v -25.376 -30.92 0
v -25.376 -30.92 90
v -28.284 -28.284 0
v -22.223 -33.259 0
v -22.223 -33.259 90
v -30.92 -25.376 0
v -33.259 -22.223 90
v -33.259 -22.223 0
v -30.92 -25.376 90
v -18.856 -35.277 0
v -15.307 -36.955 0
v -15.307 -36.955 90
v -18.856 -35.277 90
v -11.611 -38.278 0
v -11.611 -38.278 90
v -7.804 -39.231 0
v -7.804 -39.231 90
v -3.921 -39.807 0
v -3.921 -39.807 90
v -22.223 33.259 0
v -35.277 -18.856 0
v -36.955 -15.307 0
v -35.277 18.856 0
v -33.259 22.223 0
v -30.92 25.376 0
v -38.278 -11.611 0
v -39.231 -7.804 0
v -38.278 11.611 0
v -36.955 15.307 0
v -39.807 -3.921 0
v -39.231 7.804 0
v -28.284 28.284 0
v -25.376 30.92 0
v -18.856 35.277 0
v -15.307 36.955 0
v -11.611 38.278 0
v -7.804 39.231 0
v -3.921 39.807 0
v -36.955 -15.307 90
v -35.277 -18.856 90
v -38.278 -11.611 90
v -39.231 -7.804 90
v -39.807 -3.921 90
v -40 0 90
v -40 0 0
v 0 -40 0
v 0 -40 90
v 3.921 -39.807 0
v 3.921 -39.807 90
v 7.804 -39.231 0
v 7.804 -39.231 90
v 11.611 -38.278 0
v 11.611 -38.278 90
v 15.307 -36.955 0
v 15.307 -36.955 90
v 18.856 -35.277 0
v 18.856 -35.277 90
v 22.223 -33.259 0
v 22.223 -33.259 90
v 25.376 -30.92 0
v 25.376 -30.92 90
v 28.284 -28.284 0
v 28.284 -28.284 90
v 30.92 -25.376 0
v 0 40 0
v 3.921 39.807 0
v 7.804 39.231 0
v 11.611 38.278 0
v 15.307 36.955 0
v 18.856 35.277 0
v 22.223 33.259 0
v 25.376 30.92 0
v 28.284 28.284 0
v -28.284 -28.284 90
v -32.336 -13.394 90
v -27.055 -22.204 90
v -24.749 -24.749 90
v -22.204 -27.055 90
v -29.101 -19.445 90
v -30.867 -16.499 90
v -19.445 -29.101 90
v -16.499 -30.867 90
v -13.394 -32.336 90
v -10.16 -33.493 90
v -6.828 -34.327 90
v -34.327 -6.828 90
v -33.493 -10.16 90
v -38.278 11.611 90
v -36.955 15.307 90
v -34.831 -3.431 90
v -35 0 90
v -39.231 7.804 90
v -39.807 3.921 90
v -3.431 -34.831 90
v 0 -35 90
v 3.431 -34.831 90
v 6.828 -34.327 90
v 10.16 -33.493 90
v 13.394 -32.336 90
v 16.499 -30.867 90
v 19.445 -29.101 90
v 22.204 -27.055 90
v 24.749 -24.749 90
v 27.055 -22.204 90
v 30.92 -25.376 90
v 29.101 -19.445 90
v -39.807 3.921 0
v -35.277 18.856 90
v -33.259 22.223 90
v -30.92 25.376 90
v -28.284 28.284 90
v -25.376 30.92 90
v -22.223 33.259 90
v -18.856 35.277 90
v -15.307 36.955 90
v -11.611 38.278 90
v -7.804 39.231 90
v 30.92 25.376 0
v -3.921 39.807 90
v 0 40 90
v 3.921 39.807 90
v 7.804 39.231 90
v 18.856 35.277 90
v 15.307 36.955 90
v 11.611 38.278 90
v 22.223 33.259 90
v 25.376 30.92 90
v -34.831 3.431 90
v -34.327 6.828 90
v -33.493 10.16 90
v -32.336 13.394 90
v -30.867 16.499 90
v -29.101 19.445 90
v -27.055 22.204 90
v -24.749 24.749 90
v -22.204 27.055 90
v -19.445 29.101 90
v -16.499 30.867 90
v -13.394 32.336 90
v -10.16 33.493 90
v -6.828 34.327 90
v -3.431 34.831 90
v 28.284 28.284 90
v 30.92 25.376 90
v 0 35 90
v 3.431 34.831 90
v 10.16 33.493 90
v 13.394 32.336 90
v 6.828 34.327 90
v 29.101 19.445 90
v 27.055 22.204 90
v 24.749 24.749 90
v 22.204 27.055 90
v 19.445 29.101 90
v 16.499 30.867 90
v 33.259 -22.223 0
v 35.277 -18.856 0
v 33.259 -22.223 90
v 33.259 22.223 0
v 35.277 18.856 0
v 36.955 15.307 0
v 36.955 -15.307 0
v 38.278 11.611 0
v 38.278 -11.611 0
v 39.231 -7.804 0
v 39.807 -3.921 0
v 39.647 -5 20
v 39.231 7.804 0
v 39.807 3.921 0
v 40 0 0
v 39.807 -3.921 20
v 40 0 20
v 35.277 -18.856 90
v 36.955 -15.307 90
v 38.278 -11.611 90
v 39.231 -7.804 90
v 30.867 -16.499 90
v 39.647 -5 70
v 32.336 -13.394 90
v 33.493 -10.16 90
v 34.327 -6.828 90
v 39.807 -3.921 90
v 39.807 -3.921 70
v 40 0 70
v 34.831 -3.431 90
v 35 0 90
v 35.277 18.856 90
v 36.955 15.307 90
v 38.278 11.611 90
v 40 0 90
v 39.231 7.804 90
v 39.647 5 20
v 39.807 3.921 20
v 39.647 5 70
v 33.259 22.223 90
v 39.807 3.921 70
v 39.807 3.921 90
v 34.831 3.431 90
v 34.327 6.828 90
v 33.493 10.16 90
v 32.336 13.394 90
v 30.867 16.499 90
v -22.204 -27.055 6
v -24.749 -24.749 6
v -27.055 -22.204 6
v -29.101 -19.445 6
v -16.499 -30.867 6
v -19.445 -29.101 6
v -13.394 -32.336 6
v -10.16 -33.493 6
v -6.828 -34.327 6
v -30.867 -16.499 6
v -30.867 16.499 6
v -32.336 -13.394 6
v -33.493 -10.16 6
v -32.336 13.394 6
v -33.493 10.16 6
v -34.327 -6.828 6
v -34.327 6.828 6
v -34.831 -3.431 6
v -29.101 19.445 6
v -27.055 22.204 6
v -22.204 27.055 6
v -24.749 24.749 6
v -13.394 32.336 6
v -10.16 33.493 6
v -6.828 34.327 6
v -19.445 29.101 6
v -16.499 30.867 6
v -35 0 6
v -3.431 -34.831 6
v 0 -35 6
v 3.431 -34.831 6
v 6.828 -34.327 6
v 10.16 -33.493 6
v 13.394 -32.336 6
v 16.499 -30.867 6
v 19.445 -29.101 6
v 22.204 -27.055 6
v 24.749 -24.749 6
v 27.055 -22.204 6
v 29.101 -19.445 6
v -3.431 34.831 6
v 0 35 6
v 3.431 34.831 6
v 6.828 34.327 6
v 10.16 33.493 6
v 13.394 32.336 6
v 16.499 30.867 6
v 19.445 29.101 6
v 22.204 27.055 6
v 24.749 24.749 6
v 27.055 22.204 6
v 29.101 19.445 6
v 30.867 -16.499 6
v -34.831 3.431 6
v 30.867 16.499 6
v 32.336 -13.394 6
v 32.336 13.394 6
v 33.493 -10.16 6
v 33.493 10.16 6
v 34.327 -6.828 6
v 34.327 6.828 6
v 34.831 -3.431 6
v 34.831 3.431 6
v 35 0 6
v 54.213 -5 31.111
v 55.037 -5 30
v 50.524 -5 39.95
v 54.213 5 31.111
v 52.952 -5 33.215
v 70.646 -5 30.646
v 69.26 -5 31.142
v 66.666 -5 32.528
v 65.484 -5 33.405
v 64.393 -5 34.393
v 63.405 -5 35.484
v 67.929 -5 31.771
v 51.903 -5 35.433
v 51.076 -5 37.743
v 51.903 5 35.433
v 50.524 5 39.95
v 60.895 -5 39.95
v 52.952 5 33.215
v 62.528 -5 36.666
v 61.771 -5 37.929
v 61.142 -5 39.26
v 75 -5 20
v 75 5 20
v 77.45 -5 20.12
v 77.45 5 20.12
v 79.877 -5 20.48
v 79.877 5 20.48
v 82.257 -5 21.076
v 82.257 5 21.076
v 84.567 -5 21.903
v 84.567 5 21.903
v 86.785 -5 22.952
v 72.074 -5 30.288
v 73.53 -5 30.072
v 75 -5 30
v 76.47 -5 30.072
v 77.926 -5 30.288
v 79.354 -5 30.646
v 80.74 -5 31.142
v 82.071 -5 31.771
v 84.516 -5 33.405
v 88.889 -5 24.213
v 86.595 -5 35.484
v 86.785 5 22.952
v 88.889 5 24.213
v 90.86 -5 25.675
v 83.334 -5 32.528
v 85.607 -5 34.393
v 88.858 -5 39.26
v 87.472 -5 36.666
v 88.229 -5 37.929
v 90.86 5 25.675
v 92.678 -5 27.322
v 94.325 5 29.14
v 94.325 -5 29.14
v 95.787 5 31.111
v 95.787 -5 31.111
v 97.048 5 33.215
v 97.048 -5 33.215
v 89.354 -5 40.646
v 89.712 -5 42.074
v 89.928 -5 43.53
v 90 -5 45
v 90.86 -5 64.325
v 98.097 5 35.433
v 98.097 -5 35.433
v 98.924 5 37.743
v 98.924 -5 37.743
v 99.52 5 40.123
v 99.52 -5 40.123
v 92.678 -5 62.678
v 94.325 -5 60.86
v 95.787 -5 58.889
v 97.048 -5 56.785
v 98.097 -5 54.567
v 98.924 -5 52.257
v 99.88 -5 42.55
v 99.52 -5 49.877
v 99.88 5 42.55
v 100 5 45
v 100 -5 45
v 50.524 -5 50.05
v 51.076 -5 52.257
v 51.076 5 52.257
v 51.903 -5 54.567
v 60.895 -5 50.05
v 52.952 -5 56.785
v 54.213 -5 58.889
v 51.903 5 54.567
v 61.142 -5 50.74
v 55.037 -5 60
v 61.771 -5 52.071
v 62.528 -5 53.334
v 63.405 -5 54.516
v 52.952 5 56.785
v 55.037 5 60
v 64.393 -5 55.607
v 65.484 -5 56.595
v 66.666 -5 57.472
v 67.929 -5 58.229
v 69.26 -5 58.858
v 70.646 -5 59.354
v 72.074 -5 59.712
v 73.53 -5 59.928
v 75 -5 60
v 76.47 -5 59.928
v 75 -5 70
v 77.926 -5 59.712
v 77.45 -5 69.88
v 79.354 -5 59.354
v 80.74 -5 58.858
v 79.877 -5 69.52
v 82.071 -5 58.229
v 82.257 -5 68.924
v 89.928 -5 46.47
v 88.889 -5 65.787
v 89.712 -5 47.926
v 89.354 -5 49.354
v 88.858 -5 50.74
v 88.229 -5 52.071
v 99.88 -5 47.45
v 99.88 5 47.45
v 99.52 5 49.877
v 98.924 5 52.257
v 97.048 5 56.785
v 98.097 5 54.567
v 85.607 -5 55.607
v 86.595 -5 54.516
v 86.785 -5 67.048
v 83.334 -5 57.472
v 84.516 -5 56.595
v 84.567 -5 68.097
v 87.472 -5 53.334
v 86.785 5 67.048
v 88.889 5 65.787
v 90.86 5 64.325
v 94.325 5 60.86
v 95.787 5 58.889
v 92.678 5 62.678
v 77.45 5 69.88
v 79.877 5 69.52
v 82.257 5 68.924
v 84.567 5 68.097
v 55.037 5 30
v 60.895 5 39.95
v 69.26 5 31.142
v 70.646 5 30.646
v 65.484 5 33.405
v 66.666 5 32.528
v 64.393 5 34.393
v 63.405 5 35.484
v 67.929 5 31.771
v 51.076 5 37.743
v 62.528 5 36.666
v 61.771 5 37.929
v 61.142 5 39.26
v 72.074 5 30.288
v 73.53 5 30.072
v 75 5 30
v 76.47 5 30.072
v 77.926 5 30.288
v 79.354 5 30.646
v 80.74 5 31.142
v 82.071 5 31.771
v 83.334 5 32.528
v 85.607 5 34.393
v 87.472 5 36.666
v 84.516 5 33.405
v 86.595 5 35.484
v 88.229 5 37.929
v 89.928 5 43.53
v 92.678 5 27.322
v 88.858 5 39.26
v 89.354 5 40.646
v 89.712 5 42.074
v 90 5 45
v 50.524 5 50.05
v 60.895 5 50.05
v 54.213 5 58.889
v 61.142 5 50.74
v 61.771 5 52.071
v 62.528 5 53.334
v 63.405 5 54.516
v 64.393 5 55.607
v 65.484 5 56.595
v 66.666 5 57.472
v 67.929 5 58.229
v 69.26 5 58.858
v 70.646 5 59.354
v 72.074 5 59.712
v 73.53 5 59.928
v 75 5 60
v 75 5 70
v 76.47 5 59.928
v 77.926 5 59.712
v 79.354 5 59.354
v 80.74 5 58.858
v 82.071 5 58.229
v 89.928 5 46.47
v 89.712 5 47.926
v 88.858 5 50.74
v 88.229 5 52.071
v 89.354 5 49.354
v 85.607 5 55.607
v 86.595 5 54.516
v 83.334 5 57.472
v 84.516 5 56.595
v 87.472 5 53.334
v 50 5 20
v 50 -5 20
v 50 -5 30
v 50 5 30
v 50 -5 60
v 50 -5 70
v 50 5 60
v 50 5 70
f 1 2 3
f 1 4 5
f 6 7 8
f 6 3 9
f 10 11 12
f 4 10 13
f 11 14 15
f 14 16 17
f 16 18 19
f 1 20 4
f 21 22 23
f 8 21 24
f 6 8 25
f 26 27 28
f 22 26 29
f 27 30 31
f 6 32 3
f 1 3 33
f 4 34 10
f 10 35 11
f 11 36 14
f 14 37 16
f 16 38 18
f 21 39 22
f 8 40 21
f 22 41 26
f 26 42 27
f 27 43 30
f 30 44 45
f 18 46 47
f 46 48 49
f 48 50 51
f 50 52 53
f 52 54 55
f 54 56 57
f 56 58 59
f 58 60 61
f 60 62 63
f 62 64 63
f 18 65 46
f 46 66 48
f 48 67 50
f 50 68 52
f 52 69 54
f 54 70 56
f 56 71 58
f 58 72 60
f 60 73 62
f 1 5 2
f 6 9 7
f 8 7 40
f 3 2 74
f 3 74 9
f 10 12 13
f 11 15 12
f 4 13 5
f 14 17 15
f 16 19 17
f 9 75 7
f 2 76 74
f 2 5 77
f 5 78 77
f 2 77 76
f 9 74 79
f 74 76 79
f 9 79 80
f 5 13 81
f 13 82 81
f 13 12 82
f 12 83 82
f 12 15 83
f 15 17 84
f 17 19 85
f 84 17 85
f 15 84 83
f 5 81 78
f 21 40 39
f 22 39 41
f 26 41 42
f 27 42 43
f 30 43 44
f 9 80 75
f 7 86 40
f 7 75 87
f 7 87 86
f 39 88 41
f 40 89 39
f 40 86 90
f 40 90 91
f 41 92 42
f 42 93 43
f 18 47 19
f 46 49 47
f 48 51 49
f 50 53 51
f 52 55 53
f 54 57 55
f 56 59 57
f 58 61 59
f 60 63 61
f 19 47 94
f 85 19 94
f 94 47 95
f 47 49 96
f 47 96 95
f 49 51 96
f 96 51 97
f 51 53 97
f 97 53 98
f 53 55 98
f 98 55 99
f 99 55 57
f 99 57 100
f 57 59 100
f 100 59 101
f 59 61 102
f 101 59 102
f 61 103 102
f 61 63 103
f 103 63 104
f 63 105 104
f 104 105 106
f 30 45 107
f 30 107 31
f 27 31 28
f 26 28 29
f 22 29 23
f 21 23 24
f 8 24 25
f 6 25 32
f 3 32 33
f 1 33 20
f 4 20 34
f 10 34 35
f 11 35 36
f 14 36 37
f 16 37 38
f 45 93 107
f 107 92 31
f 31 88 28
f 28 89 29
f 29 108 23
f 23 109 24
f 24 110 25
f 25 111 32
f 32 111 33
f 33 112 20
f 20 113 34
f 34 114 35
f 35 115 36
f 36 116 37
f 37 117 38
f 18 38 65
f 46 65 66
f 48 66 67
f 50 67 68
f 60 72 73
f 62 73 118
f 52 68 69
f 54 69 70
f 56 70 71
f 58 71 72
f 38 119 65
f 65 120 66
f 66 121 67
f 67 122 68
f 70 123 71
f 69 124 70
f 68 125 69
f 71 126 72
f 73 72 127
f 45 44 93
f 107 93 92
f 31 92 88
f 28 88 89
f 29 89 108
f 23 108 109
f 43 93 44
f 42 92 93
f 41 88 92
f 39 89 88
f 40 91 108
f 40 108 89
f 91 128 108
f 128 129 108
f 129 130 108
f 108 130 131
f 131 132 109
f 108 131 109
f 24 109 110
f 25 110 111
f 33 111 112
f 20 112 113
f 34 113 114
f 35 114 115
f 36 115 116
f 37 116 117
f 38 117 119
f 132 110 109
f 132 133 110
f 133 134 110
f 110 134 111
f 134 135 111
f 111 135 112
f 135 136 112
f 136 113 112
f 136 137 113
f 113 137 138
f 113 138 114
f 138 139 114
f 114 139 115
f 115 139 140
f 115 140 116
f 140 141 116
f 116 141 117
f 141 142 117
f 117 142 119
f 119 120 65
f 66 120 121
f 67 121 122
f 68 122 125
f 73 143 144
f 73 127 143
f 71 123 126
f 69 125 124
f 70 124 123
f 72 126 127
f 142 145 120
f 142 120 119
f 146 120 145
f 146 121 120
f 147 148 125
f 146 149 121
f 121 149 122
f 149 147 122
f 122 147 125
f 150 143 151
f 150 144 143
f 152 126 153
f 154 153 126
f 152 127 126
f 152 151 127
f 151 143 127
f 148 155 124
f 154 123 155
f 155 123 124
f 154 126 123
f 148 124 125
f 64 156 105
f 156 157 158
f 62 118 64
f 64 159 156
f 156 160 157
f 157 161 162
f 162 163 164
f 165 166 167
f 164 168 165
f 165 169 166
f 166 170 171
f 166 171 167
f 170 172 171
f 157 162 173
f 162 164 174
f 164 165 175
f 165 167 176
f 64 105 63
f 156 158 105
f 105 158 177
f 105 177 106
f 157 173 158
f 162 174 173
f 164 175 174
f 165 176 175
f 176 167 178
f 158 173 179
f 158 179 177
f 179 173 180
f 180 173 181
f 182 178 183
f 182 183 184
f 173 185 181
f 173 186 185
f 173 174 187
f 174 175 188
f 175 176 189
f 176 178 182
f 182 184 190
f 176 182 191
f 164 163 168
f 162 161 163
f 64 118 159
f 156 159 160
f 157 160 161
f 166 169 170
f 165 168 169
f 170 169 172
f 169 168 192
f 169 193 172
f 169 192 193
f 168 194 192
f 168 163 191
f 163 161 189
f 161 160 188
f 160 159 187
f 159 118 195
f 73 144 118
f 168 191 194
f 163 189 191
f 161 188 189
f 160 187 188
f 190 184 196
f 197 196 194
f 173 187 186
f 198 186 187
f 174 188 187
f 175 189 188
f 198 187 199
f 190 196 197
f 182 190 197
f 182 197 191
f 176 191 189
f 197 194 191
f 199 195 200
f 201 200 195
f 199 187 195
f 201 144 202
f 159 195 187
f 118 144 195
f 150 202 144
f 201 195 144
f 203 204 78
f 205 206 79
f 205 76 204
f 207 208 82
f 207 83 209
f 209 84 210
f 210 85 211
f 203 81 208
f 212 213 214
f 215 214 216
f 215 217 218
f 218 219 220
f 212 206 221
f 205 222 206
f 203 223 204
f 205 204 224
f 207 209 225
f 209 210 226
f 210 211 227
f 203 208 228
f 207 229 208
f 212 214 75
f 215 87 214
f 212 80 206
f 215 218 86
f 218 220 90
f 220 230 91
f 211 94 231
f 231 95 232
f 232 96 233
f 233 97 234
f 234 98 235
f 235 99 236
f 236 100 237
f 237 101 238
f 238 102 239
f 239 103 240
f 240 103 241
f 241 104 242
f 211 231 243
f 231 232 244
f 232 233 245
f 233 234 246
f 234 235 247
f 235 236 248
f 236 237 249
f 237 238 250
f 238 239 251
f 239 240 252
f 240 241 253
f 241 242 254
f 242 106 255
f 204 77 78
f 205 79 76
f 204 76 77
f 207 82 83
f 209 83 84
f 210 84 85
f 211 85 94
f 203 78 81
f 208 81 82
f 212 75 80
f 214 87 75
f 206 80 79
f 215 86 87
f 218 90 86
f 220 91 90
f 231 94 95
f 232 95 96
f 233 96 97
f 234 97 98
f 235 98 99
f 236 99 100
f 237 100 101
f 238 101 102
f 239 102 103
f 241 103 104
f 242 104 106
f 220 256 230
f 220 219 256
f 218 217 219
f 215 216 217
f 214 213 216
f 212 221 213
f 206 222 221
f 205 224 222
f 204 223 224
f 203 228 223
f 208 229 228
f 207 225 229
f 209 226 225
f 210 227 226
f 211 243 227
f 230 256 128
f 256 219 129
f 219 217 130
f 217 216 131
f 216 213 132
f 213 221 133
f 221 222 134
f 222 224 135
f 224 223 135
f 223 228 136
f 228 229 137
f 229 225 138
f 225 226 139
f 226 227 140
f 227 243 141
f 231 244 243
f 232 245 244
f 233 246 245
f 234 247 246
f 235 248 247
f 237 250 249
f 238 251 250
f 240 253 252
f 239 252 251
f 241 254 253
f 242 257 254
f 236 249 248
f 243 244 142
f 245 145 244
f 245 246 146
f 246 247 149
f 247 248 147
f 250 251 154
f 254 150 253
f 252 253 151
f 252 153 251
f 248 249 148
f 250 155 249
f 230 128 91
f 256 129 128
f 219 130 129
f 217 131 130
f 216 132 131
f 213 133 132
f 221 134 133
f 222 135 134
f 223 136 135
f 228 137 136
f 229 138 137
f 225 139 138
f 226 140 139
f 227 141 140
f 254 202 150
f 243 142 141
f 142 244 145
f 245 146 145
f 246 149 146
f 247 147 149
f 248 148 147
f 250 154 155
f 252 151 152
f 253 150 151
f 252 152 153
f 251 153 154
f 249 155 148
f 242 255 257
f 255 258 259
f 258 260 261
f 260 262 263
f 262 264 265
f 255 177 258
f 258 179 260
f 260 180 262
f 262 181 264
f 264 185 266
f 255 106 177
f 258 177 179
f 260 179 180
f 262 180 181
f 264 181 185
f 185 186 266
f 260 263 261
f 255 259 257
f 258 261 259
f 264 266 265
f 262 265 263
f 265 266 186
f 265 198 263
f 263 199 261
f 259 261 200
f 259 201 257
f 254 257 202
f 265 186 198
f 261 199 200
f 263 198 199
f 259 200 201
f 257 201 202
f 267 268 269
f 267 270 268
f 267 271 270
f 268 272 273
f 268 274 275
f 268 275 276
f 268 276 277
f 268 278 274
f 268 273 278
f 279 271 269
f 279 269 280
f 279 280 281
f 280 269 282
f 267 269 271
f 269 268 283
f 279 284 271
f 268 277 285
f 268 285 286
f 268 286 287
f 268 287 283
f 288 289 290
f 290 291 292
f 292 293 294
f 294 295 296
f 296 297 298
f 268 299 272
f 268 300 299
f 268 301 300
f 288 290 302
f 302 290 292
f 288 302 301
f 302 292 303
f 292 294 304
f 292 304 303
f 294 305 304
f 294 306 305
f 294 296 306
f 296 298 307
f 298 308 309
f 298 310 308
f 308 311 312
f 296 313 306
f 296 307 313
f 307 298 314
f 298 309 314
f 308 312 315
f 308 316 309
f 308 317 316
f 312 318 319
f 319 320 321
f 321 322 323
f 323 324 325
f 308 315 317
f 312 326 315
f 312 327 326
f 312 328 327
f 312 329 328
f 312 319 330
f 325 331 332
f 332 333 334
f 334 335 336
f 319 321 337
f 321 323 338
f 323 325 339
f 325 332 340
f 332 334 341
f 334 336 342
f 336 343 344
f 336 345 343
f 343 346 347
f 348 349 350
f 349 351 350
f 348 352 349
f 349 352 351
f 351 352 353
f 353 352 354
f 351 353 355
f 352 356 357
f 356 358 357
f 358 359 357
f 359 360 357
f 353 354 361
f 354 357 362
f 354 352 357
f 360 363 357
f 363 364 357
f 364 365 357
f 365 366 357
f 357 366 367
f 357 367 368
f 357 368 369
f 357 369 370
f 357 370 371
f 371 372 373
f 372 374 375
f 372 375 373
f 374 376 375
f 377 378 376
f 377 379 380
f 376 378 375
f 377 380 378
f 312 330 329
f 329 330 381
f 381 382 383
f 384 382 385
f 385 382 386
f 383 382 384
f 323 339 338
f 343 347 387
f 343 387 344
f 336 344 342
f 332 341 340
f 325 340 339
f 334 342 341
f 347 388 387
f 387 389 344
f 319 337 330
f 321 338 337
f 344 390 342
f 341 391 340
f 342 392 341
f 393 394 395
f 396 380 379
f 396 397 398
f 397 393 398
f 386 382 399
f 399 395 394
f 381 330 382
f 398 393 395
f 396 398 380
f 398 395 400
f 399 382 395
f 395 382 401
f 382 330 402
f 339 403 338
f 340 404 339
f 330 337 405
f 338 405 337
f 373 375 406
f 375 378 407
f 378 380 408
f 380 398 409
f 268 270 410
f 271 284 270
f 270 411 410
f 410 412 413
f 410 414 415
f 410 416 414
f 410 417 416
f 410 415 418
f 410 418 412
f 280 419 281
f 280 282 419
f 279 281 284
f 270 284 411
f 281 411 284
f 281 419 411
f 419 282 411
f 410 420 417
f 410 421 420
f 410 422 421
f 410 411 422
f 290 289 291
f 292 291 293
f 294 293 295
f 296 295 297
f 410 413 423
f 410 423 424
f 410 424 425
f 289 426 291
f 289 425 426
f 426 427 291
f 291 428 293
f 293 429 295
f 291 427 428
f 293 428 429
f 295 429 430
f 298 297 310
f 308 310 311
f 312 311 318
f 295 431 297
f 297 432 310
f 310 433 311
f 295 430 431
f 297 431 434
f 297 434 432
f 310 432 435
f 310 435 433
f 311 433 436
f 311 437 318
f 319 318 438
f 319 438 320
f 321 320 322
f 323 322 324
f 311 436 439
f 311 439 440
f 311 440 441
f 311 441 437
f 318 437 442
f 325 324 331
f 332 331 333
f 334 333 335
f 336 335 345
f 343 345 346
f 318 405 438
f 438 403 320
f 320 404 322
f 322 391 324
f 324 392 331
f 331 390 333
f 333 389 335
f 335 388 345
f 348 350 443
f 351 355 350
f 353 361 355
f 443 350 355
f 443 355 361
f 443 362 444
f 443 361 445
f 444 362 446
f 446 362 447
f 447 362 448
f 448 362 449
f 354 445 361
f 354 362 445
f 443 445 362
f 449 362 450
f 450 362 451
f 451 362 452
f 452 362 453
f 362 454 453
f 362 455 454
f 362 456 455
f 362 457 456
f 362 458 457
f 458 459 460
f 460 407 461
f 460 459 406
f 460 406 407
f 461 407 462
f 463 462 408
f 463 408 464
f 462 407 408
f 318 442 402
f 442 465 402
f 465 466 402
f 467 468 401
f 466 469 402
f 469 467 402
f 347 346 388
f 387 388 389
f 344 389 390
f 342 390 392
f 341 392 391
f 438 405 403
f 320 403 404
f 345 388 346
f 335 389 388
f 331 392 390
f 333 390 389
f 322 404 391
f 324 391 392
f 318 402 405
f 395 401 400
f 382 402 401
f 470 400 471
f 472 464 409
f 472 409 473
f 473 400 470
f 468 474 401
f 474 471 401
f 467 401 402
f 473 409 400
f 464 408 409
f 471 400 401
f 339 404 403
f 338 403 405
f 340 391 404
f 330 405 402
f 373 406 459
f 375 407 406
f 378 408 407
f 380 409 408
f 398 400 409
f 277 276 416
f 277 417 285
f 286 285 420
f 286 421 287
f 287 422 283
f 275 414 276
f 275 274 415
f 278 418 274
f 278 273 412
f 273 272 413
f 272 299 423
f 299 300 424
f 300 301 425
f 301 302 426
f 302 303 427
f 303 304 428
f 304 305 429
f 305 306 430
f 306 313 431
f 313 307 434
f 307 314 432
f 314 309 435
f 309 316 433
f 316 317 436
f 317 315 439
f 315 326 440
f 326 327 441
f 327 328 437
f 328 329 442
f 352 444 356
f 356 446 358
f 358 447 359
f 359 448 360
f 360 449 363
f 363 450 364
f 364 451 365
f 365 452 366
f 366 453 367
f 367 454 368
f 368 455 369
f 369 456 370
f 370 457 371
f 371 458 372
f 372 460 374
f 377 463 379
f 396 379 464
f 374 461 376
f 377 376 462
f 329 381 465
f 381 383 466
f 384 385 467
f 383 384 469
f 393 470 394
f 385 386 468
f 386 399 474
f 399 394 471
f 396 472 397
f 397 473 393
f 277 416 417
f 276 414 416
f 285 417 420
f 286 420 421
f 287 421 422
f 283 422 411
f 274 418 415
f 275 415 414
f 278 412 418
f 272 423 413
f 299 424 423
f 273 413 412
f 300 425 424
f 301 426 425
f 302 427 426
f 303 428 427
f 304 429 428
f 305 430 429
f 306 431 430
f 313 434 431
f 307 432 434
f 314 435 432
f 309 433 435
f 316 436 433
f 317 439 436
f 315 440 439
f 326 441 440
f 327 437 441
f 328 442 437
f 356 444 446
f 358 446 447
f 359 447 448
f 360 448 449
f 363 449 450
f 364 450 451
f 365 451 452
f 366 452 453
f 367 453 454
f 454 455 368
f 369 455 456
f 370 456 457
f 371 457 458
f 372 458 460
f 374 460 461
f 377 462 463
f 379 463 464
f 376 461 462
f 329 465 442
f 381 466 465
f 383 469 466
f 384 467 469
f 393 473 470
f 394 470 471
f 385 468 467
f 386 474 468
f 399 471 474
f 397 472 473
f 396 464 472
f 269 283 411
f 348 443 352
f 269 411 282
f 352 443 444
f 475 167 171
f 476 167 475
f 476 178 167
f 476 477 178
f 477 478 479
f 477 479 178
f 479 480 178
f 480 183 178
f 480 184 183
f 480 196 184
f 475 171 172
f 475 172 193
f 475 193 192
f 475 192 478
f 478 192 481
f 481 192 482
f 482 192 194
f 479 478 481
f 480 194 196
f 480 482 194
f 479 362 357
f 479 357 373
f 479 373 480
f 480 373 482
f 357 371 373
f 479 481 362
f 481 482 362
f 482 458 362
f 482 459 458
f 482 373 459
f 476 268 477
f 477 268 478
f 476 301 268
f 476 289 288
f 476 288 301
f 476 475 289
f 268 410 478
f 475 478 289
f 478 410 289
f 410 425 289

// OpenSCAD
// OpenSCAD Mug with Handle
// Global rendering quality (higher value = smoother curves)
$fn = 64;

// Mug body parameters
mug_outer_radius = 80 / 2; // 40mm
mug_inner_radius = 70 / 2; // 35mm
mug_height = 90;
mug_bottom_thickness = 6;

// Handle parameters
handle_thickness = 10;          // Thickness of the handle material
handle_inner_width = 25;        // Internal width of the finger hole (X direction)
handle_inner_height = 30;       // Internal height of the finger hole (Z direction)

// Overlap for robust union between handle and mug body
// A small positive value ensures the handle slightly penetrates the mug body
// which helps OpenSCAD create a manifold solid and avoids Z-fighting artifacts.
handle_mug_overlap = 0.5; // Example: 0.5mm overlap into the mug body

// Calculate handle positioning
handle_z_center = mug_height / 2; // Center of the handle vertically on the mug
handle_y_center = 0;              // Center of the handle horizontally (aligned with mug's Y axis)

module mug_body() {
    difference() {
        // Outer cylinder of the mug
        cylinder(h = mug_height, r = mug_outer_radius);

        // Inner hollow part
        // Lifted by mug_bottom_thickness to create the solid bottom
        translate([0, 0, mug_bottom_thickness])
            cylinder(h = mug_height - mug_bottom_thickness, r = mug_inner_radius);
    }
}

module mug_handle() {
    // Define key X-coordinates for the handle construction for clarity and precision.
    // The X-coordinate where the handle's outermost surface (if no overlap) would meet the mug.
    x_mug_outer_surface = mug_outer_radius;

    // The X-coordinate where the handle's vertical bar starts, embedded into the mug.
    x_handle_start_embedded = x_mug_outer_surface - handle_mug_overlap;

    // The X-coordinate of the inner face of the handle material, after the mug connection.
    // This is also where the horizontal bars of the D-shape begin.
    x_handle_inner_material_face = x_mug_outer_surface + handle_thickness;

    // The X-coordinate where the straight part of the finger hole ends and the arc begins.
    // This is the X-coordinate of the "straight edge" of the D-arc.
    x_handle_arc_straight_edge = x_handle_inner_material_face + handle_inner_width;

    union() {
        // 1. Vertical connecting bar
        // This bar connects the handle to the mug's outer surface (+X direction).
        // It spans the full height of the D-shaped handle.
        // Its X-dimension extends from x_handle_start_embedded to x_handle_inner_material_face.
        translate([
            x_handle_start_embedded,                         // Starts slightly inside the mug (X)
            handle_y_center - handle_thickness / 2,          // Centered on Y axis
            handle_z_center - (handle_inner_height / 2 + handle_thickness) // Bottom Z of the handle
        ]) {
            cube([
                handle_thickness + handle_mug_overlap,       // X-dimension (handle_thickness + the overlap)
                handle_thickness,                            // Y-dimension (handle's thickness)
                handle_inner_height + 2 * handle_thickness   // Z-dimension (total height of the handle)
            ]);
        }

        // 2. Top horizontal bar
        // This bar forms the top part of the D-shape, connecting the vertical bar to the arc.
        translate([
            x_handle_inner_material_face,                    // Starts after the vertical connecting bar (X)
            handle_y_center - handle_thickness / 2,          // Centered on Y axis
            handle_z_center + handle_inner_height / 2        // Top Z of the finger hole
        ]) {
            cube([
                handle_inner_width,                          // X-dimension (width of the finger hole part)
                handle_thickness,                            // Y-dimension (handle's thickness)
                handle_thickness                             // Z-dimension (height of this bar)
            ]);
        }

        // 3. Bottom horizontal bar
        // This bar forms the bottom part of the D-shape.
        translate([
            x_handle_inner_material_face,                    // Starts after the vertical connecting bar (X)
            handle_y_center - handle_thickness / 2,          // Centered on Y axis
            handle_z_center - handle_inner_height / 2 - handle_thickness // Bottom Z of the finger hole
        ]) {
            cube([
                handle_inner_width,                          // X-dimension (width of the finger hole part)
                handle_thickness,                            // Y-dimension (handle's thickness)
                handle_thickness                             // Z-dimension (height of this bar)
            ]);
        }

        // 4. Outer D-shape arc
        // This creates the curved part of the D-shape handle.
        // It's formed by differencing two concentric cylinders and then cutting one half.
        outer_arc_radius = handle_inner_height / 2 + handle_thickness; // Radius of the outer curve
        inner_arc_radius = handle_inner_height / 2;                   // Radius of the inner cut for the arc

        // The arc is generated such that its straight (left) edge is at X=0 in its local coordinates
        // after the difference and cutting operations.
        // We then translate it so this X=0 aligns with x_handle_arc_straight_edge.
        translate([x_handle_arc_straight_edge, handle_y_center, handle_z_center])
        rotate([90, 0, 0]) { // Rotate so the cylinder's height is along Y, and the arc is in the XZ plane
            difference() {
                // Outer cylinder that defines the overall arc shape (centered in XZ plane)
                cylinder(r = outer_arc_radius, h = handle_thickness, center = true);
                
                // Inner cylinder to cut out the inside of the arc, creating a ring shape
                // Use a slightly larger height to ensure a clean cut through the entire handle_thickness
                cylinder(r = inner_arc_radius, h = handle_thickness * 1.01, center = true);
                
                // Cutting cube to remove the 'negative X' half of the ring, forming the D-shape arc.
                // The cylinders are centered at [0,0,0] in this rotated coordinate system.
                // We want to keep the positive X half (right side), so we cut the negative X half (left side).
                // This cube effectively cuts everything from X < ~0.
                translate([-outer_arc_radius - 0.1, 0, 0]) // Position cutting cube to completely cover the negative X half
                    cube([outer_arc_radius + 0.2, handle_thickness * 1.01, outer_arc_radius * 2 + 0.2], center=true);
            }
        }
    }
}

// Assemble the complete mug by combining the body and the handle
union() {
    mug_body();
    mug_handle();
}
